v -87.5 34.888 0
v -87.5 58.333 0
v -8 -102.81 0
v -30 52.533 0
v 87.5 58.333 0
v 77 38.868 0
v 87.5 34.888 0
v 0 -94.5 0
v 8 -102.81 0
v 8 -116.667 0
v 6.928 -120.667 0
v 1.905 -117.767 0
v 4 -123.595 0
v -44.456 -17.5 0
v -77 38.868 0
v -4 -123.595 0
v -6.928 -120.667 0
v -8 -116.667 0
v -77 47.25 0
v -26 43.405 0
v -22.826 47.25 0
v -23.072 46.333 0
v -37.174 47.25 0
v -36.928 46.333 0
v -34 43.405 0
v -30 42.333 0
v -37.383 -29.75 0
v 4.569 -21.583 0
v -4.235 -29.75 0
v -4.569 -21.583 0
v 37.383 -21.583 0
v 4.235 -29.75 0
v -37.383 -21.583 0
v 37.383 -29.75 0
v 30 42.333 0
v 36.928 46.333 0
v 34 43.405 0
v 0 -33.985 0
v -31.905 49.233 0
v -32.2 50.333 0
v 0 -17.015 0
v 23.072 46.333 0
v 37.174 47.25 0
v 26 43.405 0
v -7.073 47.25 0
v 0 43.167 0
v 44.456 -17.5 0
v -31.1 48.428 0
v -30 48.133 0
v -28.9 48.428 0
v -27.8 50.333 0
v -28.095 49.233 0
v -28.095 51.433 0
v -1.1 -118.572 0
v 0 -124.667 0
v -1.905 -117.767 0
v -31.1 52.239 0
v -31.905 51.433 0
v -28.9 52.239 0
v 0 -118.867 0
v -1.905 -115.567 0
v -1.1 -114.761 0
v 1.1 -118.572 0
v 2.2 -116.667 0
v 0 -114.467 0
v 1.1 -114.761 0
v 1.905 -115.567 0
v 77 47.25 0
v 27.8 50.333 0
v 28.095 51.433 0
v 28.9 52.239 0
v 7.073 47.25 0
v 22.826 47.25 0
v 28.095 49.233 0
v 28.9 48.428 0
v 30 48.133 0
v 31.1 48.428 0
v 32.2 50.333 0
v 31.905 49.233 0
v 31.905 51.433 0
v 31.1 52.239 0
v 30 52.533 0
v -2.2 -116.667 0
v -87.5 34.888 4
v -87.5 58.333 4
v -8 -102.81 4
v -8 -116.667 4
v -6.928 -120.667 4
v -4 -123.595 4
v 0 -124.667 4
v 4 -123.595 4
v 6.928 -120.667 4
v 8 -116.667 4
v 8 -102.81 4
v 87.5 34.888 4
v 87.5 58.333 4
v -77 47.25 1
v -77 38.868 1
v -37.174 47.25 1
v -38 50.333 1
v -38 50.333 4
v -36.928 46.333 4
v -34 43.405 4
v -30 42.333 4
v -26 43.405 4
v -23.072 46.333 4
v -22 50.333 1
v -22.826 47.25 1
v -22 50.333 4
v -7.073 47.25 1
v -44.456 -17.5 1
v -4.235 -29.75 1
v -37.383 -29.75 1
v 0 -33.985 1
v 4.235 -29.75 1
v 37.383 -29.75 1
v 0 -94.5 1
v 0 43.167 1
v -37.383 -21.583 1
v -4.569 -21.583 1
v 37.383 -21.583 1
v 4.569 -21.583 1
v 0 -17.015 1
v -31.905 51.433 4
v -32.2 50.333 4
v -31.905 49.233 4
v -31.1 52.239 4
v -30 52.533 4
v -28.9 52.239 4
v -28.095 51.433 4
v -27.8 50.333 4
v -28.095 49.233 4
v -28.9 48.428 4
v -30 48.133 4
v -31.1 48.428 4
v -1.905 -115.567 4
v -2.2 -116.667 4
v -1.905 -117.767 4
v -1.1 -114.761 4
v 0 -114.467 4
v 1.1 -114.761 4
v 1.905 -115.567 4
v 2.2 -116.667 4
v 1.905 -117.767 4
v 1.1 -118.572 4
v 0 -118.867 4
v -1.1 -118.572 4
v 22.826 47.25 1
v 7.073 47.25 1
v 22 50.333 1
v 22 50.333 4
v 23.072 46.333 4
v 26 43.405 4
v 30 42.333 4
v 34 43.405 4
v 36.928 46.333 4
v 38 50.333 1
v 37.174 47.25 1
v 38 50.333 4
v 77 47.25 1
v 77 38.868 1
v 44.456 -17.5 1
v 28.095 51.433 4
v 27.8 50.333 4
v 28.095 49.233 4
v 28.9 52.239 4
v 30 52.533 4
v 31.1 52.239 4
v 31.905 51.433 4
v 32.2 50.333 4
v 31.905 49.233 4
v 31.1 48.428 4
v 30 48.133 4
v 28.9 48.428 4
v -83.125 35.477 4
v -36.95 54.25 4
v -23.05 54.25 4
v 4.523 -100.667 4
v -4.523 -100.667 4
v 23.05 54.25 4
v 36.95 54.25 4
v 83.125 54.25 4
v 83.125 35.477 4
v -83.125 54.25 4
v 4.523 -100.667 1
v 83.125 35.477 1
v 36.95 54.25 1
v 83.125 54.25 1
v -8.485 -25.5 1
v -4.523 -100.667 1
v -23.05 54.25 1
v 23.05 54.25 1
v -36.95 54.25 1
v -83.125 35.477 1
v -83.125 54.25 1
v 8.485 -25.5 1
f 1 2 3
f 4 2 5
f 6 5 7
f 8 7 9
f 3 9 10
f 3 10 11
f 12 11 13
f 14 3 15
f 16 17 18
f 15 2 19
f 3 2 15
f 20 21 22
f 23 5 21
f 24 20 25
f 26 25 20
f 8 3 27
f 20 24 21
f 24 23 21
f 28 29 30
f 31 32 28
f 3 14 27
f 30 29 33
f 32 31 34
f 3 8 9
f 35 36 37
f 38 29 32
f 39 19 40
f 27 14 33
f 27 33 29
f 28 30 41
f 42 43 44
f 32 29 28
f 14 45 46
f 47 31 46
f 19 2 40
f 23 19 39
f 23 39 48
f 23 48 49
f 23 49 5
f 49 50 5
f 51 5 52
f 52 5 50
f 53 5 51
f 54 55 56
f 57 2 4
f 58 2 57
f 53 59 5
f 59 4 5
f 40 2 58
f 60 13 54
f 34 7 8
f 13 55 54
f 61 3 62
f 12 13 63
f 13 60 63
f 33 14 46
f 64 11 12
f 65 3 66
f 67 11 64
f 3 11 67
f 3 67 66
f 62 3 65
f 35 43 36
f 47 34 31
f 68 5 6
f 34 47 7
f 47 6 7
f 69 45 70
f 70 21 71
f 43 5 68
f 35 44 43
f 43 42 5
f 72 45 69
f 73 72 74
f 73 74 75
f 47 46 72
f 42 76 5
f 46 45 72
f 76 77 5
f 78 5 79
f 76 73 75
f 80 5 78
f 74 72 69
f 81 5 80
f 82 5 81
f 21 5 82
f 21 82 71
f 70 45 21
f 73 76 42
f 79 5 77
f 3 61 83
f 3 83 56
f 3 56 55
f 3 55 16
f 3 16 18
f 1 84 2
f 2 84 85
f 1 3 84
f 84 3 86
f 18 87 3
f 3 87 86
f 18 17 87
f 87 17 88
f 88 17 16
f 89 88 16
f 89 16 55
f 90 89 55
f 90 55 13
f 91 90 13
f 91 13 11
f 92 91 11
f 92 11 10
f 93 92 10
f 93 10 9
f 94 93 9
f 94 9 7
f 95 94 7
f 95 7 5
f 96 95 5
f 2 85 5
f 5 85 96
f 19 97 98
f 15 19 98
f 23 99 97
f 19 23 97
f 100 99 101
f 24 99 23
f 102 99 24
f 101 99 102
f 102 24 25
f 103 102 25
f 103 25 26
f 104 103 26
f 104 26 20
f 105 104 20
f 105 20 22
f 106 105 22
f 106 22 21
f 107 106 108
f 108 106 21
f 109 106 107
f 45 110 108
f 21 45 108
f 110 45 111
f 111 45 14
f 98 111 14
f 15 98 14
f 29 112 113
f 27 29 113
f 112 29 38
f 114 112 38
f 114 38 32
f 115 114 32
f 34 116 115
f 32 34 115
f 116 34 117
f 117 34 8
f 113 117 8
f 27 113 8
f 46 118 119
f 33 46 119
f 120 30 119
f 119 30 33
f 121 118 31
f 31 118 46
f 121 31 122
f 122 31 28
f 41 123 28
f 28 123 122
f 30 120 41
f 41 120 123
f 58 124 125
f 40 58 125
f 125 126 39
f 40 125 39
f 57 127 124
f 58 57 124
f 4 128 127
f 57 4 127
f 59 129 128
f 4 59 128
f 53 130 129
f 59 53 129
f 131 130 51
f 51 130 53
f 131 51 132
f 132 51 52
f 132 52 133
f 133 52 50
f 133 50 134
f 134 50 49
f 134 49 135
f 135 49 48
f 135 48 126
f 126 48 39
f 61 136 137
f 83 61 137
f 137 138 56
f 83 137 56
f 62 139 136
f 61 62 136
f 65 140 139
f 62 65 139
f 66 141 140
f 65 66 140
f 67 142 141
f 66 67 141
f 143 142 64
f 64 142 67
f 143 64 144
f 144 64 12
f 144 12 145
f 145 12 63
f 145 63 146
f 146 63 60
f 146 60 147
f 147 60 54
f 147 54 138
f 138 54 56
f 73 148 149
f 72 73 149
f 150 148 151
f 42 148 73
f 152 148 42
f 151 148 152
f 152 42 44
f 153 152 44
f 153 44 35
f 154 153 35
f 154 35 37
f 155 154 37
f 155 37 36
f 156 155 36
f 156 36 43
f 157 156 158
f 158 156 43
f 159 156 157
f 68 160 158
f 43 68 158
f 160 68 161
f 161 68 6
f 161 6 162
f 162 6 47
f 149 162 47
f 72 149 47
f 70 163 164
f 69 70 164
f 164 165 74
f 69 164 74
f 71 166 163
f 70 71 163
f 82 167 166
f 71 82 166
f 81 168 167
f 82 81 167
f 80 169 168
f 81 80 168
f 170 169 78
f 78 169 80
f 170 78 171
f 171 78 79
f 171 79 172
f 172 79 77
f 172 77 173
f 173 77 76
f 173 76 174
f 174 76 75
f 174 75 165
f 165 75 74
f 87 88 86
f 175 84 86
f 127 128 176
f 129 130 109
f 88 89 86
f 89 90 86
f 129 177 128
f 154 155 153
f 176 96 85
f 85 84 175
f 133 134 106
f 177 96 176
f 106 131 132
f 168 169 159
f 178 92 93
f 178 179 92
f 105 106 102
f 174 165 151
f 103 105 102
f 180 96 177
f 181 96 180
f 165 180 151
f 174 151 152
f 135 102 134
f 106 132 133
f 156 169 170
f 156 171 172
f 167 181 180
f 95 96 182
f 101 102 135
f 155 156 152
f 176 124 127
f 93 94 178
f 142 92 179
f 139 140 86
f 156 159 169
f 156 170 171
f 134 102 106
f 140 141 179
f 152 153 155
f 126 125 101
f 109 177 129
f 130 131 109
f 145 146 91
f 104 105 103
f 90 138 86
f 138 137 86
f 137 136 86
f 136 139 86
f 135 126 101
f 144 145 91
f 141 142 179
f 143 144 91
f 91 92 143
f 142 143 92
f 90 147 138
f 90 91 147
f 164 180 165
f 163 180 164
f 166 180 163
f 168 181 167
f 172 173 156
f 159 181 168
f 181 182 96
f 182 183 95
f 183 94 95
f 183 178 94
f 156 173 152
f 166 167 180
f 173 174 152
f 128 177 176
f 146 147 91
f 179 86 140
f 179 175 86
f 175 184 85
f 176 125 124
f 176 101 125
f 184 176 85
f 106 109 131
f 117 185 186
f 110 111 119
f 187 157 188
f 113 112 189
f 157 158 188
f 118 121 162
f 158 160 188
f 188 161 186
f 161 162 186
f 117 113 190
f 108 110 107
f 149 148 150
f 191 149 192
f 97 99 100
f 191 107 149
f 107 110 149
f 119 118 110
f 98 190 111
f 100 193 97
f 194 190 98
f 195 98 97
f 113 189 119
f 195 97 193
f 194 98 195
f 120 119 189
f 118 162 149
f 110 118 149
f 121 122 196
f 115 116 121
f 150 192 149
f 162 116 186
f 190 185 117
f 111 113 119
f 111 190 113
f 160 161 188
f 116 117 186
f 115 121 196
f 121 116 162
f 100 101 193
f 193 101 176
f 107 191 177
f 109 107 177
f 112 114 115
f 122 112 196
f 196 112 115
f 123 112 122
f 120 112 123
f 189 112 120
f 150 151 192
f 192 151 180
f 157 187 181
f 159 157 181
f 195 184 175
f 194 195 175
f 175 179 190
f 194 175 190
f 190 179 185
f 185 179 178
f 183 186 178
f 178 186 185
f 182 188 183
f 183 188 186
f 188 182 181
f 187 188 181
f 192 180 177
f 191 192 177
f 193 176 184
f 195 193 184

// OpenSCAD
// FIXME for 230mm arms we may need to shorten this, I think 130/cos(30) = 150
radius = 175; // pretty close to 150/cos(30)
radius2 = radius/cos(30);
radius3 = radius2/cos(30)/2;
radius4 = radius3*0.37;
h=4;

module jig() {
  difference() {
    union() {
      difference() {
	intersection() {
	  rotate([0, 0, 30])
	    cylinder(r=radius3, h=h, center=true, $fn=3);
	  cube([radius, 300, 20], center=true);
	}
	intersection() {
	  rotate([0, 0, 30]) translate([0, 0, 1])
	    cylinder(r=radius3*0.93, h=h, center=true, $fn=3);
	  cube([radius*0.95, 300, 20], center=true);
	}
	for (a = [0:120:360]) {
	  intersection() {
	    rotate([0, 0, a+30]) translate([radius3*0.44, 0, 0])
	      cylinder(r=radius4, h=h+1, center=true, $fn=3);
	    cube([radius*0.88, 300, 20], center=true);
	  }
	}
	rotate([0, 0, -30])
	  cylinder(r=radius4, h=h+1, center=true, $fn=3);
      }
      translate([0, -25.5, 0.5-h/2]) rotate([0, 0, 45])
	cube([12, 12, 1], center=true);
      translate([-30, radius3/2-8, 0])
	cylinder(r=8, h=h, center=true, $fn=12);
      translate([30, radius3/2-8, 0])
	cylinder(r=8, h=h, center=true, $fn=12);
      translate([0, -radius3, 0])
	cylinder(r=8, h=h, center=true, $fn=12);
      translate([0, 8-radius3, 0])
	cube([16, 16, h], center=true);
    }
    translate([-30, radius3/2-8, 0])
      # cylinder(r=2.2, h=50, center=true, $fn=12);
    translate([30, radius3/2-8, 0])
      # cylinder(r=2.2, h=50, center=true, $fn=12);
    translate([0, -radius3, 0])
      # cylinder(r=2.2, h=50, center=true, $fn=12);
  }
}

translate([0, 0, h/2]) jig();
